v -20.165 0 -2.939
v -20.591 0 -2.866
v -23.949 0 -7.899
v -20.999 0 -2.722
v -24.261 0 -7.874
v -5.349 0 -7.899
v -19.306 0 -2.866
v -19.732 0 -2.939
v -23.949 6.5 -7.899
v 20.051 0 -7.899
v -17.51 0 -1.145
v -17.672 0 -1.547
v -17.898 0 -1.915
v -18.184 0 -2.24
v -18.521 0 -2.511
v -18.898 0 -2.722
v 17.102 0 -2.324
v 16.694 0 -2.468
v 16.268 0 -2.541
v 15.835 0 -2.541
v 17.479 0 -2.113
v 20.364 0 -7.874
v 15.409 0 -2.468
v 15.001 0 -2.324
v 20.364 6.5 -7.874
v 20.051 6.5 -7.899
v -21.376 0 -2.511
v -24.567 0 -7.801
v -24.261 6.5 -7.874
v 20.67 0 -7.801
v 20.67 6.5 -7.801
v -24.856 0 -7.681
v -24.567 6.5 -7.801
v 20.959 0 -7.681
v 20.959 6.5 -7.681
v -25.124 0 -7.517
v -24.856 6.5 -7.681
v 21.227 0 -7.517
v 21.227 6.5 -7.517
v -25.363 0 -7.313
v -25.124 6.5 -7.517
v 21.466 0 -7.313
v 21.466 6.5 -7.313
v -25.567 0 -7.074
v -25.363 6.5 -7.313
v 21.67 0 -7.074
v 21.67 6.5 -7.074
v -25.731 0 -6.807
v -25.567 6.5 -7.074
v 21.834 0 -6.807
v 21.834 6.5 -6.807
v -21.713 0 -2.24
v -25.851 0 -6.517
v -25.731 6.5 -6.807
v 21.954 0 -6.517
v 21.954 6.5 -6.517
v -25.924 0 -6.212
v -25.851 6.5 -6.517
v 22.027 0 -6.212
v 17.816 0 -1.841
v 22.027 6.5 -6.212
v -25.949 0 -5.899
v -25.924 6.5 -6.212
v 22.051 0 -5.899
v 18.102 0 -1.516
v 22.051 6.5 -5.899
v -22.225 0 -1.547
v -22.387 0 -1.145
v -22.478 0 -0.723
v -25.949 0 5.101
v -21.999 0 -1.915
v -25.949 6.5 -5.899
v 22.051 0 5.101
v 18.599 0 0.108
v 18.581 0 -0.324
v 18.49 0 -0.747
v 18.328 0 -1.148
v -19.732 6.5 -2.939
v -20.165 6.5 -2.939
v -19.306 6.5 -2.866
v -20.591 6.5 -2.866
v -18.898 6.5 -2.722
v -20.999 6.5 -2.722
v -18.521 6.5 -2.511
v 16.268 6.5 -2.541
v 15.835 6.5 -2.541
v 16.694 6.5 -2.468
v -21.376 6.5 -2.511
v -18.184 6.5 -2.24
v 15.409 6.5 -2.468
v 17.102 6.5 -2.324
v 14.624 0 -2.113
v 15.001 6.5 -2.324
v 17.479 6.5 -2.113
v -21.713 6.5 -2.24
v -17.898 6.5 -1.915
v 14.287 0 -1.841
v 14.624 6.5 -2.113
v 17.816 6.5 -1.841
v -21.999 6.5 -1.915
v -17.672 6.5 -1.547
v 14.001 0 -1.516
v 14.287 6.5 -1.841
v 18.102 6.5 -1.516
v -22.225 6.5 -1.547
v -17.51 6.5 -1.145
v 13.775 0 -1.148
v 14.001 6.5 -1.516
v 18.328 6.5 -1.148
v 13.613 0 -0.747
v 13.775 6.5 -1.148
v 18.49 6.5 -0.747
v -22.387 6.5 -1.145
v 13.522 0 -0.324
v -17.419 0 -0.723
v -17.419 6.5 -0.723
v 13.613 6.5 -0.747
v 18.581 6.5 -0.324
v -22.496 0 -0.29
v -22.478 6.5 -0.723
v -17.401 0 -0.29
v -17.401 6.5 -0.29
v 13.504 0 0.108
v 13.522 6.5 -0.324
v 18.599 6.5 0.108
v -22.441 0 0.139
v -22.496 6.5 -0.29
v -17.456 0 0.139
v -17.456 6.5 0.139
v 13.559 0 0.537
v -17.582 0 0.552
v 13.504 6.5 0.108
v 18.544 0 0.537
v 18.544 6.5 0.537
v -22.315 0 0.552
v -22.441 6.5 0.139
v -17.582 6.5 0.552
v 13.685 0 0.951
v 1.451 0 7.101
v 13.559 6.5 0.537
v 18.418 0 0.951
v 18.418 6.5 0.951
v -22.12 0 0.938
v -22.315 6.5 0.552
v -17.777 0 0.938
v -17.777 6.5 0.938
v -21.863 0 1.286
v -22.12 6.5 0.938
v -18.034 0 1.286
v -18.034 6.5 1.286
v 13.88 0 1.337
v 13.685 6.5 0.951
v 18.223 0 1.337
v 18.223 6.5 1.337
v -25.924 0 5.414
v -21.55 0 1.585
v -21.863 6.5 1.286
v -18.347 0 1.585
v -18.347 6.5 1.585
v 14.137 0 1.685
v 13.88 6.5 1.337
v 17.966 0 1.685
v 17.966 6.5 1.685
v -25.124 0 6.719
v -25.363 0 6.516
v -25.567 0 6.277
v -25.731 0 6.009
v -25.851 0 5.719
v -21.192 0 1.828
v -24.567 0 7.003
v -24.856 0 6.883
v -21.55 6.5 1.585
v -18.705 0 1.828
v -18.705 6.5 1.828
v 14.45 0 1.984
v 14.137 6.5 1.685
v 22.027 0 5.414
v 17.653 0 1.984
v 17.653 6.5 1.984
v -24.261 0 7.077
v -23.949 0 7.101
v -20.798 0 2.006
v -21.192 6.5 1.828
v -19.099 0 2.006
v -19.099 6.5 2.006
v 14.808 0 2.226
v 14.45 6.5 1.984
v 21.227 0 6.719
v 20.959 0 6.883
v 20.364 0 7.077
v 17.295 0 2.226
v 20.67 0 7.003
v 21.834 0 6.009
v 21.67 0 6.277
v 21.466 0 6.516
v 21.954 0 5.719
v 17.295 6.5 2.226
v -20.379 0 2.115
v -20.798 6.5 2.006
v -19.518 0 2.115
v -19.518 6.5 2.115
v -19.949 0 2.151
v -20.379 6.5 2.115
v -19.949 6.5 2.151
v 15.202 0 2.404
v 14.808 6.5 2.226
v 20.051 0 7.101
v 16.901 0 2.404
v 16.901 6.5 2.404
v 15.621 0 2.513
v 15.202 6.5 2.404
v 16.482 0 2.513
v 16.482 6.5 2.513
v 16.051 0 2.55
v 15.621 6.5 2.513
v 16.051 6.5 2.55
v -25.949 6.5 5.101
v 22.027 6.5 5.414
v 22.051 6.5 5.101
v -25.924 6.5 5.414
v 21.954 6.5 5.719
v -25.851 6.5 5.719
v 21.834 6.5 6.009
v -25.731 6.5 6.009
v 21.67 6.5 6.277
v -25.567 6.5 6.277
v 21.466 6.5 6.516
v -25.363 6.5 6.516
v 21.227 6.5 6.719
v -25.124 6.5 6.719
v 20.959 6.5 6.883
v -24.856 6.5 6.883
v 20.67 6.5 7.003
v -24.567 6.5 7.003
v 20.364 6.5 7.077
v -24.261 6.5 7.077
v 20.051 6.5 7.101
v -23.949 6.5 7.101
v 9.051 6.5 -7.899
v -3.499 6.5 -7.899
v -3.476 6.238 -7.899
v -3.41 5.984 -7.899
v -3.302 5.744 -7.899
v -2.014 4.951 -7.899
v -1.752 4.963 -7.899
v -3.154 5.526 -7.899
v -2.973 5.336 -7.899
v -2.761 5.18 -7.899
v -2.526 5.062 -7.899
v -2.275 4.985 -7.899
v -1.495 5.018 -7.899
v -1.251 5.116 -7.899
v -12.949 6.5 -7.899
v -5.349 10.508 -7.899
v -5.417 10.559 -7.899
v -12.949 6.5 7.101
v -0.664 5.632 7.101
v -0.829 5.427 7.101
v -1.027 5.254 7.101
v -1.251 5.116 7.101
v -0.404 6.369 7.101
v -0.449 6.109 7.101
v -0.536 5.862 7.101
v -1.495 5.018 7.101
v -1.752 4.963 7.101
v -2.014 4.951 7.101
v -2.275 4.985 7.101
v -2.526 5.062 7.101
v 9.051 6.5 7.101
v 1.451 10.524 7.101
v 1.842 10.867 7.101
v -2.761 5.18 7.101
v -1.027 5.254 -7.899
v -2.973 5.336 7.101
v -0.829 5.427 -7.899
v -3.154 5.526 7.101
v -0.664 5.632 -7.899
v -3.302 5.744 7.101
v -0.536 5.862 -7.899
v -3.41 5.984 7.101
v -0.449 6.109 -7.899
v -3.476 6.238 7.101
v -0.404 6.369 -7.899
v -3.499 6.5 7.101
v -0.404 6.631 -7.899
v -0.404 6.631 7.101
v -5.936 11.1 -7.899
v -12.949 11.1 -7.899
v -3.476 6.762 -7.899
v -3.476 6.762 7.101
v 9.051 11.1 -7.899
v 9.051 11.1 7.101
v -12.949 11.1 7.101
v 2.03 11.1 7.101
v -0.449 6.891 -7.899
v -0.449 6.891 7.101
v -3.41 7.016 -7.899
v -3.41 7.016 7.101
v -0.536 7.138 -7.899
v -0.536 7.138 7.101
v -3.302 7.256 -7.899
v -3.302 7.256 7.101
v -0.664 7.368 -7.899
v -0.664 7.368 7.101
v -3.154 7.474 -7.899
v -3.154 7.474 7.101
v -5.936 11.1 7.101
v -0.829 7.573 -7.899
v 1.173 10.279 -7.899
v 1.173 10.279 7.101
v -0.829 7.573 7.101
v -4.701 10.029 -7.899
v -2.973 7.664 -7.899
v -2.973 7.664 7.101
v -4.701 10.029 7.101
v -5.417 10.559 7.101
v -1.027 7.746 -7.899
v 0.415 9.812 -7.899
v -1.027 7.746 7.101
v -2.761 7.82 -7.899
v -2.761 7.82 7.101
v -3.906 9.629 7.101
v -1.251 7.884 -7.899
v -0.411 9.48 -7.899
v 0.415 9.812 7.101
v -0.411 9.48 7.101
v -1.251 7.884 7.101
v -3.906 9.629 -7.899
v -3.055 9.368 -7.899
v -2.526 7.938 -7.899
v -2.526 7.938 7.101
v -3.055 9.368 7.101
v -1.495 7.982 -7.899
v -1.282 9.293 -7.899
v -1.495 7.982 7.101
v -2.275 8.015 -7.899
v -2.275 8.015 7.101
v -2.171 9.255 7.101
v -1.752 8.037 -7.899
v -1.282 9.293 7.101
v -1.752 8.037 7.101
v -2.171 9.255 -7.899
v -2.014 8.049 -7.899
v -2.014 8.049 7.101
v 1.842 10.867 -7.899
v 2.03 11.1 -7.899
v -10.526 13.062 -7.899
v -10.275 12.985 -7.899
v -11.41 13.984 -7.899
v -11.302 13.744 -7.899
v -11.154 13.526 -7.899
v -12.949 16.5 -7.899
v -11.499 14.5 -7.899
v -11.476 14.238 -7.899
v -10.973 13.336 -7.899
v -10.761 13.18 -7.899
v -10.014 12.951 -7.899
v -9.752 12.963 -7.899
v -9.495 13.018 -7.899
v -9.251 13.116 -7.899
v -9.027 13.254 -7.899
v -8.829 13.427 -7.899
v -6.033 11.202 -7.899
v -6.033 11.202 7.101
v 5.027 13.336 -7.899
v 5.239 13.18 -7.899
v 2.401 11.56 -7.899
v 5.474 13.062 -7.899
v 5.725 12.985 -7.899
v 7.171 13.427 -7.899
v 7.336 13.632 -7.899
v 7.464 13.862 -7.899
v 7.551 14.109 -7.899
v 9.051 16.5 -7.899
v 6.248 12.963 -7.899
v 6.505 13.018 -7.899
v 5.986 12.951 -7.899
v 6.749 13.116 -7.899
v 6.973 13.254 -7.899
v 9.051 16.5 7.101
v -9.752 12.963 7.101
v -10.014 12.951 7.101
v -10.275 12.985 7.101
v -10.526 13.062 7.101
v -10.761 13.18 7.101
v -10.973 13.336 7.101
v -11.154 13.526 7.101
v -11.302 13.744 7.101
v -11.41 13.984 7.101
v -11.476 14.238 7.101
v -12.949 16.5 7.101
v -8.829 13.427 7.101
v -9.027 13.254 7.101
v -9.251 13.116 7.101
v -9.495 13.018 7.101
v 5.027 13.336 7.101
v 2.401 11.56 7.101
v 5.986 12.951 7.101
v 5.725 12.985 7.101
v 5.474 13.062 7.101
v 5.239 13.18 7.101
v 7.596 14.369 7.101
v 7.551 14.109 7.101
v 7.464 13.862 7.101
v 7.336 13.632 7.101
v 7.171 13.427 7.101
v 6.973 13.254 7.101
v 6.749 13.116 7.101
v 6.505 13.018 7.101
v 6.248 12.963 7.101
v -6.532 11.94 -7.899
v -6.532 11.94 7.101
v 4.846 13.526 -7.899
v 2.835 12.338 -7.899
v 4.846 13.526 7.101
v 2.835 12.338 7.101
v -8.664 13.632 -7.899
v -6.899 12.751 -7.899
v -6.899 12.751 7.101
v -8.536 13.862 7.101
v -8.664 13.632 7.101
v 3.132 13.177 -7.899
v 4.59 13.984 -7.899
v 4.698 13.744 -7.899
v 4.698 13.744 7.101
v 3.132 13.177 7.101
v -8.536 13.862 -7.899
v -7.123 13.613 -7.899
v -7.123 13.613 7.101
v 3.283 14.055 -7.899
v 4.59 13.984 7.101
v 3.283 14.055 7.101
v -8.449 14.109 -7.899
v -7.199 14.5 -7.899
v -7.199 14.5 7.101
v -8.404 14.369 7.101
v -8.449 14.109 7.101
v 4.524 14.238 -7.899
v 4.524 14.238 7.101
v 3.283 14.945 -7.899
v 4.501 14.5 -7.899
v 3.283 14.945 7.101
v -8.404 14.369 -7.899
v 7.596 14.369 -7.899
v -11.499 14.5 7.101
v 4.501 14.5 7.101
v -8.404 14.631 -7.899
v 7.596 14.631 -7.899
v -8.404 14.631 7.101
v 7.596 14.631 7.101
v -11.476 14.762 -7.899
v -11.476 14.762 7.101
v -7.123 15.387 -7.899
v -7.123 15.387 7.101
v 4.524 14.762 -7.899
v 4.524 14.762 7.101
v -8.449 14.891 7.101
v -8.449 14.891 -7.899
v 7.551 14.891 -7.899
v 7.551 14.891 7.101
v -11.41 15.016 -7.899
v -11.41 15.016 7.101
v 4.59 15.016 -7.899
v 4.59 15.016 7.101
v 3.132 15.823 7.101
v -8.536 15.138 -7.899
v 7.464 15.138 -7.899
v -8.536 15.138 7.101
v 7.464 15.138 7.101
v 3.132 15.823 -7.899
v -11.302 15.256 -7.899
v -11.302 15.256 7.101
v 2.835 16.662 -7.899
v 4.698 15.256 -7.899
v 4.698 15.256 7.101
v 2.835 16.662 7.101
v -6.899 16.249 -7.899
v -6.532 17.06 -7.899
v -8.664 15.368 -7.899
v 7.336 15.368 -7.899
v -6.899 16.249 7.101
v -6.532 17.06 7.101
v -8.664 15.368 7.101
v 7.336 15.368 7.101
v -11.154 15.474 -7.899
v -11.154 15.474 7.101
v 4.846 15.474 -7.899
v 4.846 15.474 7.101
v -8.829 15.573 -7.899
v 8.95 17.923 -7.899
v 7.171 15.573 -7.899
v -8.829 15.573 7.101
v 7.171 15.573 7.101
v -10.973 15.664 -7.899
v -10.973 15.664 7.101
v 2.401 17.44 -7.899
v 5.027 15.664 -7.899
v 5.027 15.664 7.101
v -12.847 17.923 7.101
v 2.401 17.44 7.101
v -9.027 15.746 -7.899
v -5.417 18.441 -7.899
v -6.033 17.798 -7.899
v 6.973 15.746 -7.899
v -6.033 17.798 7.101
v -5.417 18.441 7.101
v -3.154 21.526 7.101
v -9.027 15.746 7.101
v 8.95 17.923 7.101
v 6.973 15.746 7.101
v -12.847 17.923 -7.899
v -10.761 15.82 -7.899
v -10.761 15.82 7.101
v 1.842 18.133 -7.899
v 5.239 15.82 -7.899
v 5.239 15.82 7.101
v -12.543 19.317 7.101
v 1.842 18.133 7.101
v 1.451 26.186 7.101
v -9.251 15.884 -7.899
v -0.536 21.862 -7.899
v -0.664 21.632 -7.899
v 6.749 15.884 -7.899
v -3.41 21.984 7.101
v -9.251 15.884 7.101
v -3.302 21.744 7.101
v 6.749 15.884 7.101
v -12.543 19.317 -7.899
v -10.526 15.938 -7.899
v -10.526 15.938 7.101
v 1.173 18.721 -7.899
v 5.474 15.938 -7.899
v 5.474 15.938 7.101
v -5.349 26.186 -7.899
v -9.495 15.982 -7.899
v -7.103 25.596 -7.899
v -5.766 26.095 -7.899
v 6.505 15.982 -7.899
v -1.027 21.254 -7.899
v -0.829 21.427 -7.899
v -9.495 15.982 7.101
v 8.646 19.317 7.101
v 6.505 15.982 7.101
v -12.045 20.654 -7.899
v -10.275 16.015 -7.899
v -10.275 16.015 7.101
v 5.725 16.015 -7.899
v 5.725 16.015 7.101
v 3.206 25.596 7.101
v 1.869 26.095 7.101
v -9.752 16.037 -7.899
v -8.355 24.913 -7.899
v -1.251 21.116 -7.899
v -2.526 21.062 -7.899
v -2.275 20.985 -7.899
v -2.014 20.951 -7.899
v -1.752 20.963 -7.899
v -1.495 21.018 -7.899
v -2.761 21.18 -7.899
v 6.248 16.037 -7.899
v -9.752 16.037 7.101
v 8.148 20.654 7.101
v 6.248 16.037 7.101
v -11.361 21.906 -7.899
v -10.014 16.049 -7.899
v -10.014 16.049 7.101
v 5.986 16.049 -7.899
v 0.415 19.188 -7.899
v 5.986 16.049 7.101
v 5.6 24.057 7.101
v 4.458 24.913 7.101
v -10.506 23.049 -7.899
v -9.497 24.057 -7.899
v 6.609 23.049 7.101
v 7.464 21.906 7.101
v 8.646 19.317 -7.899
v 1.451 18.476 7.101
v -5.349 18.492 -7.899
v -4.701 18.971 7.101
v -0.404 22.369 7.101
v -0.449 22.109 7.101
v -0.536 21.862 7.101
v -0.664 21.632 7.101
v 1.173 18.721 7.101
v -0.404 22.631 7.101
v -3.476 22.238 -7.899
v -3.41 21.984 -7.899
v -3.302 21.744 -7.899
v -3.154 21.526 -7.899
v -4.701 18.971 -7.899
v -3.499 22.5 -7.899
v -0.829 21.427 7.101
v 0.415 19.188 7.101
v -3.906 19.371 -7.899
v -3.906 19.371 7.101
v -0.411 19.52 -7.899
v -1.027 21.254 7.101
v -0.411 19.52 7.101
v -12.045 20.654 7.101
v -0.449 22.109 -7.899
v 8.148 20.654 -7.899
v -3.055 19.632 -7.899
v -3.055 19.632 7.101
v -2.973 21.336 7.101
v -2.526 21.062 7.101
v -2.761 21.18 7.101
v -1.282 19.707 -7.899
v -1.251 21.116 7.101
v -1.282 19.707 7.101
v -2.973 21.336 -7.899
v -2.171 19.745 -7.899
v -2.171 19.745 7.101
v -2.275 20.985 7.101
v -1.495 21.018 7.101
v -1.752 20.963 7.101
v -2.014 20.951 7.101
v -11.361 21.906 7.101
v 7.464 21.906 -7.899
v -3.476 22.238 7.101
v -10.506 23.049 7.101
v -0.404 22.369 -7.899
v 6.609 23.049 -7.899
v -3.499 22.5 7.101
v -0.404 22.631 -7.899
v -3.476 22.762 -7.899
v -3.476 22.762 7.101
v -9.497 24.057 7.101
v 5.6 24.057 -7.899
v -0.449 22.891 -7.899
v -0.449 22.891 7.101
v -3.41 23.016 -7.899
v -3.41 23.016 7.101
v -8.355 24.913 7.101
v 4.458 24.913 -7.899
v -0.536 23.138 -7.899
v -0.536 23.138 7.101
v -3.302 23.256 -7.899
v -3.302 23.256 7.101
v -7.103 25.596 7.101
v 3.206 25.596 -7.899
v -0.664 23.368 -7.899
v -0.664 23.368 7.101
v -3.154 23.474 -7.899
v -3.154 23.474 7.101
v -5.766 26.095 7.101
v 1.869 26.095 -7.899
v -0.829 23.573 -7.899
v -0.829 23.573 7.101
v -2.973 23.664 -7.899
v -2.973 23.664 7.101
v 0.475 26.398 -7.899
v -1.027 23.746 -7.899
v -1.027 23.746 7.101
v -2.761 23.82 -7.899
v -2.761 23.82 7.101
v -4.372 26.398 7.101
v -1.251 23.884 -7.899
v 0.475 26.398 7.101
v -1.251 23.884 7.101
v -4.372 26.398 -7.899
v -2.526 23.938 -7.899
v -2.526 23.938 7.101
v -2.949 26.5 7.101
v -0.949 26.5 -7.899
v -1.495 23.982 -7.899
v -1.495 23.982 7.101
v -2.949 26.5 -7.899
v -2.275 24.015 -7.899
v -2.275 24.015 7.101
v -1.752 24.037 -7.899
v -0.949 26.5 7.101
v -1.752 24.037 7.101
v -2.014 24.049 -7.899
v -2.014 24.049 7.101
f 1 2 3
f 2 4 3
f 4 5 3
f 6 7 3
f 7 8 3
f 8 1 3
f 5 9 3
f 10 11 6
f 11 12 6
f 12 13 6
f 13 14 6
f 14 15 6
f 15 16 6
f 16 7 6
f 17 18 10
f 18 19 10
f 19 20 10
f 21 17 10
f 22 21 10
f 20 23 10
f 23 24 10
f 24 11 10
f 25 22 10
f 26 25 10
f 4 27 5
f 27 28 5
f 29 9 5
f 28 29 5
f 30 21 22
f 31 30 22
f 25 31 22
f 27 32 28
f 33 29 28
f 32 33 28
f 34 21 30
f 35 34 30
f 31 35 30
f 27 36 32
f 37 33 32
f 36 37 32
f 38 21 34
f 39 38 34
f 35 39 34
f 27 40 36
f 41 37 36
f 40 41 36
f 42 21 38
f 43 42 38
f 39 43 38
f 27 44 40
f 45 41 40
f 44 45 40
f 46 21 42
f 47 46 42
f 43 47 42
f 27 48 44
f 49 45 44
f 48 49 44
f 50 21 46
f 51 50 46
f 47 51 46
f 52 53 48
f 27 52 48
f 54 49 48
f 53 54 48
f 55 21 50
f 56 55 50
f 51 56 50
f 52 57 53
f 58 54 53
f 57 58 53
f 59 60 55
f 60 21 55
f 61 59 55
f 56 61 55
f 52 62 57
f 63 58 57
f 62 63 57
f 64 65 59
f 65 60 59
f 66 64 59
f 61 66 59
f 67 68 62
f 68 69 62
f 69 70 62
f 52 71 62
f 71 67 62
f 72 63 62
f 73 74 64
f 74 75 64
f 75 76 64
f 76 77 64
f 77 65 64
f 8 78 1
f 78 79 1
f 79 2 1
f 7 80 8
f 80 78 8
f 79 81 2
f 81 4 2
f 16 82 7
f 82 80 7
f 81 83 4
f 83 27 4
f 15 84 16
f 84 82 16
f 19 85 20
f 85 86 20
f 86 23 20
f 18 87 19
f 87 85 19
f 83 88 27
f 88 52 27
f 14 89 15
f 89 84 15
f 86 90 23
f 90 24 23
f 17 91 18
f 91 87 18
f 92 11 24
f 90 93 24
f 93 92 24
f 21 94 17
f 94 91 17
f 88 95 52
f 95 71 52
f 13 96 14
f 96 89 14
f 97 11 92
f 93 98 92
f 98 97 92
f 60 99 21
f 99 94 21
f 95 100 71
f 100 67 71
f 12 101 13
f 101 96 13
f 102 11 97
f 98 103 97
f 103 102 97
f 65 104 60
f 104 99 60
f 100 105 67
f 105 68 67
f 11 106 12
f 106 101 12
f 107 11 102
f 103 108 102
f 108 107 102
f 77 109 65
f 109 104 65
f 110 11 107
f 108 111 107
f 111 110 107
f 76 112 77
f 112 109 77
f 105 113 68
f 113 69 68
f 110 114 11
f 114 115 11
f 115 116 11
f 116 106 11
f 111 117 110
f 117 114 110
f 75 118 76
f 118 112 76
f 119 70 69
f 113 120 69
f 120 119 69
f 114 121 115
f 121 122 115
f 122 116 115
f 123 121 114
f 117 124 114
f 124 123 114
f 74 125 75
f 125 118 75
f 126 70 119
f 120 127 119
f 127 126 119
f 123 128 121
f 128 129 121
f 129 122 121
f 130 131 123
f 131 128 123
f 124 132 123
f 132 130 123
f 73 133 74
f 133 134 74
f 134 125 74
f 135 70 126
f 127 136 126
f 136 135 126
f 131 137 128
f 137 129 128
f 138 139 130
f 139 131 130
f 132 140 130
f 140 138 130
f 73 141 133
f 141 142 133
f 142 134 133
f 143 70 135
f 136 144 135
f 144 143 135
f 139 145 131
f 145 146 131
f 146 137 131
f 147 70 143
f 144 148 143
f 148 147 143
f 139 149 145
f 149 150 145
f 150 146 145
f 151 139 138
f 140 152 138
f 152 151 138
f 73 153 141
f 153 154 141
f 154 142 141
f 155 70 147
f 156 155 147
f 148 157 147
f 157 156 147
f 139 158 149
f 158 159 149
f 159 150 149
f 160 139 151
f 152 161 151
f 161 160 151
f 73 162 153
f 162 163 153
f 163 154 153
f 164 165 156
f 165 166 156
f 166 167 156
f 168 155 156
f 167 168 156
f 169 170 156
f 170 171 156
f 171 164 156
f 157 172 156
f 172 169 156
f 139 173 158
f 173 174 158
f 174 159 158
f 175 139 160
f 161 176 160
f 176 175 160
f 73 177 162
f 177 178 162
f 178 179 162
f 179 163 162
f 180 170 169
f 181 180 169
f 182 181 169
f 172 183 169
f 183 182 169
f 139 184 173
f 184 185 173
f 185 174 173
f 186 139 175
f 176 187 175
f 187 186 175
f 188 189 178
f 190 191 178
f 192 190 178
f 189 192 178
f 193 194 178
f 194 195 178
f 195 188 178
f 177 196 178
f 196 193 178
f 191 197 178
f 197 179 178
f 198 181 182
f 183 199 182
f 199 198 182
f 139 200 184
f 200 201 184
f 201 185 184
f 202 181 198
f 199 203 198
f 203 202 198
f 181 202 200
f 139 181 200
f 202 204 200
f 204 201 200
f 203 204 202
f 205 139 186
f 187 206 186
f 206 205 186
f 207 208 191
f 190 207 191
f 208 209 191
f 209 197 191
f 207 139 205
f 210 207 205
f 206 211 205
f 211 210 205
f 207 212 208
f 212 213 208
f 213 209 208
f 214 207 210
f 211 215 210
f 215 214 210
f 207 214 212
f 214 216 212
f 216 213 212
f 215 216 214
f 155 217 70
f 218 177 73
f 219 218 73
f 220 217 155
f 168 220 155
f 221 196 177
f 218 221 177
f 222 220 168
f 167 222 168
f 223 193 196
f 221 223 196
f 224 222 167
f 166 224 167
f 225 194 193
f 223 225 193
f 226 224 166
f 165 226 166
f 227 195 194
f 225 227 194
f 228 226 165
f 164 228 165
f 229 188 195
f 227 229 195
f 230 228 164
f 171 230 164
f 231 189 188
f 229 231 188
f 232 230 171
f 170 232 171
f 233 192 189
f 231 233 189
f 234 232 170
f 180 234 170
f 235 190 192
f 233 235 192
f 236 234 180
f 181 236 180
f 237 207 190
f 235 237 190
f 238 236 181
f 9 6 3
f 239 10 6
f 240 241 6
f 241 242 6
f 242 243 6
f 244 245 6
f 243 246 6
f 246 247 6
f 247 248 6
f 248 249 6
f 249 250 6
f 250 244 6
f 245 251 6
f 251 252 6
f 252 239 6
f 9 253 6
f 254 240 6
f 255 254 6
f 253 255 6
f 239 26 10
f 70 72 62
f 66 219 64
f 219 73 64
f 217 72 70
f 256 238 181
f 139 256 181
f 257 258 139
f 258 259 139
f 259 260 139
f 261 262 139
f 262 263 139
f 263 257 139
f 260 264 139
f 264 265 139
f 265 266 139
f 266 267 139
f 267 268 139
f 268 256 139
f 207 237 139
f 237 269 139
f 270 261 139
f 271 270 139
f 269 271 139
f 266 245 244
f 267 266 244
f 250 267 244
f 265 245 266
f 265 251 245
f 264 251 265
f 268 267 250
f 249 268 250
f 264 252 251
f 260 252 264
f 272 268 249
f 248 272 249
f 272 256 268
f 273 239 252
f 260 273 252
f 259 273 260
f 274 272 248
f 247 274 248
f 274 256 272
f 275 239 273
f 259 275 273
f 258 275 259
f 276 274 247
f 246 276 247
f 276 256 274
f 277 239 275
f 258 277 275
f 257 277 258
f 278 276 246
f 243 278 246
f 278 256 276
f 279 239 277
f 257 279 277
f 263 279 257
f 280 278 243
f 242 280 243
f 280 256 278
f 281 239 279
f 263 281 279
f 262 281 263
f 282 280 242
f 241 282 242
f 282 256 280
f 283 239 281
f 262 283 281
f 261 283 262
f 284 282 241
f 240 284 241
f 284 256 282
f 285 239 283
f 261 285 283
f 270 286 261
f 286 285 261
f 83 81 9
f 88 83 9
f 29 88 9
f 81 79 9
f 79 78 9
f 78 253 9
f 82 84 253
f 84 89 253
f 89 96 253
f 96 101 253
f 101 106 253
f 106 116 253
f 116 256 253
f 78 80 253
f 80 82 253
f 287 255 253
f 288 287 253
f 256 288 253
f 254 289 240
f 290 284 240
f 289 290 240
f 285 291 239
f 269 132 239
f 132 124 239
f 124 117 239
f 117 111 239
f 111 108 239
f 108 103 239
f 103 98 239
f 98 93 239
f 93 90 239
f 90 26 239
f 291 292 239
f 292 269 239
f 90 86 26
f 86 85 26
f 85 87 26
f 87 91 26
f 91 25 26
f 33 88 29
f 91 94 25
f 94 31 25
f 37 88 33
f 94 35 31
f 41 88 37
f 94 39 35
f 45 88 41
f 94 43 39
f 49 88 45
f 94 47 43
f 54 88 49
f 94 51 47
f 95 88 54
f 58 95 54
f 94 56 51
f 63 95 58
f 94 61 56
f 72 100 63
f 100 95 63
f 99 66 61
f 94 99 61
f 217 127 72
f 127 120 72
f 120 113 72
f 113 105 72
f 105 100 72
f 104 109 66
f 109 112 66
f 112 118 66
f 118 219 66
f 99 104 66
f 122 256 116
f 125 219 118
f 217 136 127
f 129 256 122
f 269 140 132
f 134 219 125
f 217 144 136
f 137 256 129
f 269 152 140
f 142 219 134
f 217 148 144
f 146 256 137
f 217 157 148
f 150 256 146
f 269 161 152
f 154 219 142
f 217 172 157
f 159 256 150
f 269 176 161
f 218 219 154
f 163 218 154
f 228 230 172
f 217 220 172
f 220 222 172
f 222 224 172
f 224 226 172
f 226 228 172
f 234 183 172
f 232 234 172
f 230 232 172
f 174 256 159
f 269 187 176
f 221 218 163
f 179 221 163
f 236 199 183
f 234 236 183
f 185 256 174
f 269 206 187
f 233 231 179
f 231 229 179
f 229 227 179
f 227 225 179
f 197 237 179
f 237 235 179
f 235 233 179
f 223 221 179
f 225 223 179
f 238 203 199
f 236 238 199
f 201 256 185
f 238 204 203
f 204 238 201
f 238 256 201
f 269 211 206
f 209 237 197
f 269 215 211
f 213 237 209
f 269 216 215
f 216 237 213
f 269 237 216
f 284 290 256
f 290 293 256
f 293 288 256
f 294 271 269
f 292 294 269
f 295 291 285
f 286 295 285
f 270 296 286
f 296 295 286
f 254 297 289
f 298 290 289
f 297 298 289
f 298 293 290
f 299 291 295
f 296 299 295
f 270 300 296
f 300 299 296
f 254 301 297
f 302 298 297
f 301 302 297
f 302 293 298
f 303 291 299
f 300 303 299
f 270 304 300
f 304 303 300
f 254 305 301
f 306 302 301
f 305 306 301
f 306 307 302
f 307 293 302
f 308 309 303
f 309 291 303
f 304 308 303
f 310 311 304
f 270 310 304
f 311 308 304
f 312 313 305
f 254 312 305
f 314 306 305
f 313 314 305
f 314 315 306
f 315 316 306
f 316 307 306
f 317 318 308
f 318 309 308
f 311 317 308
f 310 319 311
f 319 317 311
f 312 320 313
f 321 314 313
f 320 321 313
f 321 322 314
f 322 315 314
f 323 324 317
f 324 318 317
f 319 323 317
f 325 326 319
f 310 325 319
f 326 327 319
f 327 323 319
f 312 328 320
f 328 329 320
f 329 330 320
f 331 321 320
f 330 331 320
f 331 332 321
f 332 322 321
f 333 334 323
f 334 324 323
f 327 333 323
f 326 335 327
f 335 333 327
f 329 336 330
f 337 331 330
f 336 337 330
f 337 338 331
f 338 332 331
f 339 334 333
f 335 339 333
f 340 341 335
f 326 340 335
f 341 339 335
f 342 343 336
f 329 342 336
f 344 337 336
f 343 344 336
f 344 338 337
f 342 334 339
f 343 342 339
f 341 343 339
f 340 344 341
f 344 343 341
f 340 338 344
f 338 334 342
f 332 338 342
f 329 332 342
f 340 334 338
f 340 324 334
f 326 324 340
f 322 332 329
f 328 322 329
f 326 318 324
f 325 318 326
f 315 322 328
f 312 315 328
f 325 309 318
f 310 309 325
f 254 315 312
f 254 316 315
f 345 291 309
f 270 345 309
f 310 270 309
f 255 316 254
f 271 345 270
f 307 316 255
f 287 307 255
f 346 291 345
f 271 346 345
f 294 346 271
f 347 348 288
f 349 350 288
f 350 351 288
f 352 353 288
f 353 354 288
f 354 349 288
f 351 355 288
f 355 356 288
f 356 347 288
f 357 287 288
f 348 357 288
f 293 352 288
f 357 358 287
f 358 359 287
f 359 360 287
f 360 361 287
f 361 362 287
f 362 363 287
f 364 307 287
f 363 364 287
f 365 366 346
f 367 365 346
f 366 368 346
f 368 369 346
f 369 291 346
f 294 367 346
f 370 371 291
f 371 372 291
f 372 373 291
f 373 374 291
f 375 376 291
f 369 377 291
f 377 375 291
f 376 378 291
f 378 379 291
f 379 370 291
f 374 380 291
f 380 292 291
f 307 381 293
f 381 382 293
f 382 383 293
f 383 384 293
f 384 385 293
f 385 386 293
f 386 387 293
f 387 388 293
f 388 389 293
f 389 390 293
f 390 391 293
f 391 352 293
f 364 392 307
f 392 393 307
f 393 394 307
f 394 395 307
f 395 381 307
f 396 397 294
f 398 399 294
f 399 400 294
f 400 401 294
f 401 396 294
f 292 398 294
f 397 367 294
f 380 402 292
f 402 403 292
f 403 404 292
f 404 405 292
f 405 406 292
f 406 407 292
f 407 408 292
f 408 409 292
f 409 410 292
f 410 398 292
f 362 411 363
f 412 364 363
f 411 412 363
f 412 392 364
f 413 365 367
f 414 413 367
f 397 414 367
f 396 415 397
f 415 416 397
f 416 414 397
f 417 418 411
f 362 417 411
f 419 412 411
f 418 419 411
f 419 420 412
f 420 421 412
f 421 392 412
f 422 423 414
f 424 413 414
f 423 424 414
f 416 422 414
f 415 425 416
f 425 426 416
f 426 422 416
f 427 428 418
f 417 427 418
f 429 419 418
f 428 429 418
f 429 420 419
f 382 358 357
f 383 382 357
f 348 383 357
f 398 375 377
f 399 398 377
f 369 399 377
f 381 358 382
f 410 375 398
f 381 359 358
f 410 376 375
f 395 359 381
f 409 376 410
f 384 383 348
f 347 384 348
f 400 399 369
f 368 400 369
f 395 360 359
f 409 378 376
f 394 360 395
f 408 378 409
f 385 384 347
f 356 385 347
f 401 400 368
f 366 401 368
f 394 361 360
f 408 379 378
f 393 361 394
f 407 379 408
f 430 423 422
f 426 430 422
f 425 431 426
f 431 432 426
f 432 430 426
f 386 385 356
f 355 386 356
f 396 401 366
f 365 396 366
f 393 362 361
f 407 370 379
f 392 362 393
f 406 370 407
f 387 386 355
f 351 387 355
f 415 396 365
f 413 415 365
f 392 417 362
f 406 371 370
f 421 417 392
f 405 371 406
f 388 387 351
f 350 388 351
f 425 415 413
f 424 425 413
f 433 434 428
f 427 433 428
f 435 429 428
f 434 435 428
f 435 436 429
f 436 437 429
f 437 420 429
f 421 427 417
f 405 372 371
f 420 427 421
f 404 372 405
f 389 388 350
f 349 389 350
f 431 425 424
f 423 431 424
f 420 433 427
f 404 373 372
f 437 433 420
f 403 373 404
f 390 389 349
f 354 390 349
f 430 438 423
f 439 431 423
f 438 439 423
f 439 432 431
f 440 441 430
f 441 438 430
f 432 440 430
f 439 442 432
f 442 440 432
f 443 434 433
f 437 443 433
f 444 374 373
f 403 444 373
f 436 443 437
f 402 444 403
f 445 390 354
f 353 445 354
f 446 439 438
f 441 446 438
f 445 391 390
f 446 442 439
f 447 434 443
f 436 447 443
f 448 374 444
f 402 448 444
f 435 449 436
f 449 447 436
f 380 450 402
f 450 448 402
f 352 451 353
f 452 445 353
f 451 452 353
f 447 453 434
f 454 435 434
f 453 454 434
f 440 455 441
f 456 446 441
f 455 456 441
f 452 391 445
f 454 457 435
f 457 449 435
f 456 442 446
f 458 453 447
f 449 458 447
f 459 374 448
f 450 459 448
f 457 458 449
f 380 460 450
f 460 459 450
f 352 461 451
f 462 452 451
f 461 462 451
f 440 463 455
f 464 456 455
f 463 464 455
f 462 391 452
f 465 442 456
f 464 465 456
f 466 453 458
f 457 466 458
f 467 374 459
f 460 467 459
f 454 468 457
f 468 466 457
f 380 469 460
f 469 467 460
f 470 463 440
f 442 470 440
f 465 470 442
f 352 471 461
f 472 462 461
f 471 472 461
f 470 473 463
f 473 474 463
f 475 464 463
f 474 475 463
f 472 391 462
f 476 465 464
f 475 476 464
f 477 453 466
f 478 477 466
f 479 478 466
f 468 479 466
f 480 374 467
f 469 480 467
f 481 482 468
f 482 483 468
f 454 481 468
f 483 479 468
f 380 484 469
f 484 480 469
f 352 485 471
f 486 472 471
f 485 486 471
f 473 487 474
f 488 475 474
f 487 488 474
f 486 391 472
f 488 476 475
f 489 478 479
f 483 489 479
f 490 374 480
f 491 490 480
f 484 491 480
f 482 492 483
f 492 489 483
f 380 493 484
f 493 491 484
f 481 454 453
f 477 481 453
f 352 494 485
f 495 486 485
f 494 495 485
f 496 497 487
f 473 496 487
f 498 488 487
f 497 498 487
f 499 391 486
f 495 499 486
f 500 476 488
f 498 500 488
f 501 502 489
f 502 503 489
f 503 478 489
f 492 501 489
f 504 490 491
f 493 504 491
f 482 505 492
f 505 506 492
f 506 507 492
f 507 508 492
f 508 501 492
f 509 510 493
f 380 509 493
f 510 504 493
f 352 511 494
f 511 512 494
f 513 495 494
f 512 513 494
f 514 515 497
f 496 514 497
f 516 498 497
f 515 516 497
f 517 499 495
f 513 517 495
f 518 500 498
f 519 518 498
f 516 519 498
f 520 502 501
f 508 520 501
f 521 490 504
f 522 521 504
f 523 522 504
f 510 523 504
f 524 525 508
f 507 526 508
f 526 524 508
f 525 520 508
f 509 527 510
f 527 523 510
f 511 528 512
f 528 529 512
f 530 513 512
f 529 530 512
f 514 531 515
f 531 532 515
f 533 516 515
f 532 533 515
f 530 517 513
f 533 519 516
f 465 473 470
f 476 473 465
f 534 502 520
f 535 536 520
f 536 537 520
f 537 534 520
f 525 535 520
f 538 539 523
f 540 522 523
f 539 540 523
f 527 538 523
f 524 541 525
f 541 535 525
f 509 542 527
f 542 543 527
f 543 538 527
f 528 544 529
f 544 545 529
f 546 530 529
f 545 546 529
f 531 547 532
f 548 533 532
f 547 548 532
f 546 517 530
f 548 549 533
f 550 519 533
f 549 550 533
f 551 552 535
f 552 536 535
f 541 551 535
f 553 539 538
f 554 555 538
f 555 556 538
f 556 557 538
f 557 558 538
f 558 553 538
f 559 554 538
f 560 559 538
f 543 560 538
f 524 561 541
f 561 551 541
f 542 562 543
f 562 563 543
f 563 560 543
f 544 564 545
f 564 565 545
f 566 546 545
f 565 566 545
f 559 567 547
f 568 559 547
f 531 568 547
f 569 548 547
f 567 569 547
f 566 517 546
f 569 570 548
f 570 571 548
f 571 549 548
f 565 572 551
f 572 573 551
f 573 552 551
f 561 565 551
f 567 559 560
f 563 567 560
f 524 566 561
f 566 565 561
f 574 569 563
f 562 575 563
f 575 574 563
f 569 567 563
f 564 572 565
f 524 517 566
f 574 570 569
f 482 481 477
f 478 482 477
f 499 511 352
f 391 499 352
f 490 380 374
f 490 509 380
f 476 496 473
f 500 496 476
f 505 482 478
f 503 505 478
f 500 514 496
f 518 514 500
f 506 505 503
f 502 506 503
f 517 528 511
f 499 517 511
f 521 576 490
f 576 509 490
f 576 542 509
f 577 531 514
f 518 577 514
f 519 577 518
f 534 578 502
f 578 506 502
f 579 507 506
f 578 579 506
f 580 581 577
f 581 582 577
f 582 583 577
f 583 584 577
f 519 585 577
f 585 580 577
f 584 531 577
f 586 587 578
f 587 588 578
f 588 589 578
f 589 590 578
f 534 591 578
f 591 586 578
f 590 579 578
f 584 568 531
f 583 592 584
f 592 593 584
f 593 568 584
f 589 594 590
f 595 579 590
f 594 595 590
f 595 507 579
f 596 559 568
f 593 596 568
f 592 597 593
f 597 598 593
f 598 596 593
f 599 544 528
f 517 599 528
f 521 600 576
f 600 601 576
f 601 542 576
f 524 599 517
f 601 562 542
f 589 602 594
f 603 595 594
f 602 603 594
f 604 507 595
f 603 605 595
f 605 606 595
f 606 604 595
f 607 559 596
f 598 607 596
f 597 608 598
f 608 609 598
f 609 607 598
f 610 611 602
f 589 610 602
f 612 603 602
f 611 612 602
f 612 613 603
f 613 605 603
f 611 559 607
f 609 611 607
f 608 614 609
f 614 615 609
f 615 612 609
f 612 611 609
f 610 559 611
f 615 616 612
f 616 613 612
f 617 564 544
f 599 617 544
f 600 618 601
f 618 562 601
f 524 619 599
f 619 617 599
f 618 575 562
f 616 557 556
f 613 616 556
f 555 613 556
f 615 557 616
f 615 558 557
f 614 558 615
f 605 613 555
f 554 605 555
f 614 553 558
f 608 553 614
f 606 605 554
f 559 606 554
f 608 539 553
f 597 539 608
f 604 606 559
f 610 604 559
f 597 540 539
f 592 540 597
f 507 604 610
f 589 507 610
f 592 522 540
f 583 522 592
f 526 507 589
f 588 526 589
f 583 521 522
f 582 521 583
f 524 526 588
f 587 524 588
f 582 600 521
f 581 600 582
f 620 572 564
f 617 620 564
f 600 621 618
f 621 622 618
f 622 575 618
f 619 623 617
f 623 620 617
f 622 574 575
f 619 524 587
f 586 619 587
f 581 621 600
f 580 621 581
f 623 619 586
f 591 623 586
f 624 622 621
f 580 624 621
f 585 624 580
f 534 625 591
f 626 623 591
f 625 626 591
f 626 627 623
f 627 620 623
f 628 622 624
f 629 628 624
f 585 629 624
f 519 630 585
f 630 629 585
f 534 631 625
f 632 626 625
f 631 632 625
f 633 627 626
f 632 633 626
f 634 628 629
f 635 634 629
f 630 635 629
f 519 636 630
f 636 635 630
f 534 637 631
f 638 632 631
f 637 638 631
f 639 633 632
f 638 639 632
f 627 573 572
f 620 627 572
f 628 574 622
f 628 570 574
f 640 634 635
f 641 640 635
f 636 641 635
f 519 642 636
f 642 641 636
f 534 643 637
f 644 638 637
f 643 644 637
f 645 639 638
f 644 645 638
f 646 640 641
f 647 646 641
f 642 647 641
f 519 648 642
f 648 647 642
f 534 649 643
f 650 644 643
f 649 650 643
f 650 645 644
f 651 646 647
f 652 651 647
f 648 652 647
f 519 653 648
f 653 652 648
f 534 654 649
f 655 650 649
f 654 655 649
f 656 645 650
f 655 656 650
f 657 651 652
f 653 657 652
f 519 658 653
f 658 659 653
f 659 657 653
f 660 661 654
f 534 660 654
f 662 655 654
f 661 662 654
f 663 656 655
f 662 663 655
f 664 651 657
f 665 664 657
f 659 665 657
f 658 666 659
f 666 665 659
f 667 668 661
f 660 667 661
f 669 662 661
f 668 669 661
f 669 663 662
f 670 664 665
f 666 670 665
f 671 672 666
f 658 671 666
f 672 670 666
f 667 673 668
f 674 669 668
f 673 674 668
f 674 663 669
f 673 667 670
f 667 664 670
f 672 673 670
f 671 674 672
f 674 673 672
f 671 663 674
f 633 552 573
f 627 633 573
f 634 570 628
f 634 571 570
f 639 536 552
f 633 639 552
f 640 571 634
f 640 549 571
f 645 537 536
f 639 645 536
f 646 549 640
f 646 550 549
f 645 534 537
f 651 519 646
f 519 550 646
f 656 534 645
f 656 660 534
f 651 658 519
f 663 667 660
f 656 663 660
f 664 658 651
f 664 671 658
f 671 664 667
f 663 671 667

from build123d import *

# Parameters (mm, degrees)
SKETCH_1_W          = 48
SKETCH_1_H          = 15
EXTRUDE_1_DEPTH     = 6.5
SKETCH_2_W          = 22
SKETCH_2_H          = 15
EXTRUDE_2_DEPTH     = 20
FILLET_1_R          = 10
SKETCH_3_R          = 2.55
CUT_EXTRUDE_1_DEPTH = 34.700354834
SKETCH_4_R          = 5.25
SKETCH_4_R_2        = 1.55
CUT_EXTRUDE_2_DEPTH = 20
FILLET_2_R          = 2


with BuildPart() as part:
    # 草图1 → 凸台-拉伸1 (new body)
    with BuildSketch(Plane(origin=(0, 0, 0), x_dir=(1, 0, 0), z_dir=(0, 1, 0))):
        with Locations((-1.948504983, 0.398671096)):
            Rectangle(SKETCH_1_W, SKETCH_1_H)
    extrude(amount=EXTRUDE_1_DEPTH)

    # 草图2 → 凸台-拉伸2 (add)
    with BuildSketch(Plane(origin=(0, 6.5, 0), x_dir=(1, 0, 0), z_dir=(0, 1, 0))):
        with Locations((-1.948504983, 0.398671096)):
            Rectangle(SKETCH_2_W, SKETCH_2_H)
    extrude(amount=EXTRUDE_2_DEPTH)

    # 圆角1
    fillet_1_edges = [part.edges().sort_by_distance(p)[0] for p in [
        (-12.948504983, 26.5, -0.398671096),
        (9.051495017, 26.5, -0.398671096),
    ]]
    fillet(fillet_1_edges, radius=FILLET_1_R)

    # 草图3 → 切除-拉伸1 (cut, through all)
    with BuildSketch(Plane(origin=(0, 6.5, 0), x_dir=(1, 0, 0), z_dir=(0, 1, 0))):
        with Locations(Location((-19.948504983, 0.398671096, 0), (0, 0, 270))):
            Circle(SKETCH_3_R)
        with Locations(Location((16.051495017, 0, 0), (0, 0, 270))):
            Circle(SKETCH_3_R)
    extrude(amount=-CUT_EXTRUDE_1_DEPTH, mode=Mode.SUBTRACT)

    # 草图4 → 切除-拉伸2 (cut)
    with BuildSketch(Plane(origin=(0, 0, -7.898671096), x_dir=(-1, 0, 0), z_dir=(0, 0, -1))):
        with Locations((1.948504983, 14.5)):
            Circle(SKETCH_4_R)
        with Locations((1.948504983, 22.5)):
            Circle(SKETCH_4_R_2)
        with Locations((9.948504983, 14.5)):
            Circle(SKETCH_4_R_2)
        with Locations((1.948504983, 6.5)):
            Circle(SKETCH_4_R_2)
        with Locations((-6.051495017, 14.5)):
            Circle(SKETCH_4_R_2)
    extrude(amount=-CUT_EXTRUDE_2_DEPTH, mode=Mode.SUBTRACT)

    # 圆角2
    fillet_2_edges = [part.edges().sort_by_distance(p)[0] for p in [
        (-25.948504983, 3.25, -7.898671096),
        (22.051495017, 3.25, -7.898671096),
        (22.051495017, 3.25, 7.101328904),
        (-25.948504983, 3.25, 7.101328904),
    ]]
    fillet(fillet_2_edges, radius=FILLET_2_R)


solid = part.part
